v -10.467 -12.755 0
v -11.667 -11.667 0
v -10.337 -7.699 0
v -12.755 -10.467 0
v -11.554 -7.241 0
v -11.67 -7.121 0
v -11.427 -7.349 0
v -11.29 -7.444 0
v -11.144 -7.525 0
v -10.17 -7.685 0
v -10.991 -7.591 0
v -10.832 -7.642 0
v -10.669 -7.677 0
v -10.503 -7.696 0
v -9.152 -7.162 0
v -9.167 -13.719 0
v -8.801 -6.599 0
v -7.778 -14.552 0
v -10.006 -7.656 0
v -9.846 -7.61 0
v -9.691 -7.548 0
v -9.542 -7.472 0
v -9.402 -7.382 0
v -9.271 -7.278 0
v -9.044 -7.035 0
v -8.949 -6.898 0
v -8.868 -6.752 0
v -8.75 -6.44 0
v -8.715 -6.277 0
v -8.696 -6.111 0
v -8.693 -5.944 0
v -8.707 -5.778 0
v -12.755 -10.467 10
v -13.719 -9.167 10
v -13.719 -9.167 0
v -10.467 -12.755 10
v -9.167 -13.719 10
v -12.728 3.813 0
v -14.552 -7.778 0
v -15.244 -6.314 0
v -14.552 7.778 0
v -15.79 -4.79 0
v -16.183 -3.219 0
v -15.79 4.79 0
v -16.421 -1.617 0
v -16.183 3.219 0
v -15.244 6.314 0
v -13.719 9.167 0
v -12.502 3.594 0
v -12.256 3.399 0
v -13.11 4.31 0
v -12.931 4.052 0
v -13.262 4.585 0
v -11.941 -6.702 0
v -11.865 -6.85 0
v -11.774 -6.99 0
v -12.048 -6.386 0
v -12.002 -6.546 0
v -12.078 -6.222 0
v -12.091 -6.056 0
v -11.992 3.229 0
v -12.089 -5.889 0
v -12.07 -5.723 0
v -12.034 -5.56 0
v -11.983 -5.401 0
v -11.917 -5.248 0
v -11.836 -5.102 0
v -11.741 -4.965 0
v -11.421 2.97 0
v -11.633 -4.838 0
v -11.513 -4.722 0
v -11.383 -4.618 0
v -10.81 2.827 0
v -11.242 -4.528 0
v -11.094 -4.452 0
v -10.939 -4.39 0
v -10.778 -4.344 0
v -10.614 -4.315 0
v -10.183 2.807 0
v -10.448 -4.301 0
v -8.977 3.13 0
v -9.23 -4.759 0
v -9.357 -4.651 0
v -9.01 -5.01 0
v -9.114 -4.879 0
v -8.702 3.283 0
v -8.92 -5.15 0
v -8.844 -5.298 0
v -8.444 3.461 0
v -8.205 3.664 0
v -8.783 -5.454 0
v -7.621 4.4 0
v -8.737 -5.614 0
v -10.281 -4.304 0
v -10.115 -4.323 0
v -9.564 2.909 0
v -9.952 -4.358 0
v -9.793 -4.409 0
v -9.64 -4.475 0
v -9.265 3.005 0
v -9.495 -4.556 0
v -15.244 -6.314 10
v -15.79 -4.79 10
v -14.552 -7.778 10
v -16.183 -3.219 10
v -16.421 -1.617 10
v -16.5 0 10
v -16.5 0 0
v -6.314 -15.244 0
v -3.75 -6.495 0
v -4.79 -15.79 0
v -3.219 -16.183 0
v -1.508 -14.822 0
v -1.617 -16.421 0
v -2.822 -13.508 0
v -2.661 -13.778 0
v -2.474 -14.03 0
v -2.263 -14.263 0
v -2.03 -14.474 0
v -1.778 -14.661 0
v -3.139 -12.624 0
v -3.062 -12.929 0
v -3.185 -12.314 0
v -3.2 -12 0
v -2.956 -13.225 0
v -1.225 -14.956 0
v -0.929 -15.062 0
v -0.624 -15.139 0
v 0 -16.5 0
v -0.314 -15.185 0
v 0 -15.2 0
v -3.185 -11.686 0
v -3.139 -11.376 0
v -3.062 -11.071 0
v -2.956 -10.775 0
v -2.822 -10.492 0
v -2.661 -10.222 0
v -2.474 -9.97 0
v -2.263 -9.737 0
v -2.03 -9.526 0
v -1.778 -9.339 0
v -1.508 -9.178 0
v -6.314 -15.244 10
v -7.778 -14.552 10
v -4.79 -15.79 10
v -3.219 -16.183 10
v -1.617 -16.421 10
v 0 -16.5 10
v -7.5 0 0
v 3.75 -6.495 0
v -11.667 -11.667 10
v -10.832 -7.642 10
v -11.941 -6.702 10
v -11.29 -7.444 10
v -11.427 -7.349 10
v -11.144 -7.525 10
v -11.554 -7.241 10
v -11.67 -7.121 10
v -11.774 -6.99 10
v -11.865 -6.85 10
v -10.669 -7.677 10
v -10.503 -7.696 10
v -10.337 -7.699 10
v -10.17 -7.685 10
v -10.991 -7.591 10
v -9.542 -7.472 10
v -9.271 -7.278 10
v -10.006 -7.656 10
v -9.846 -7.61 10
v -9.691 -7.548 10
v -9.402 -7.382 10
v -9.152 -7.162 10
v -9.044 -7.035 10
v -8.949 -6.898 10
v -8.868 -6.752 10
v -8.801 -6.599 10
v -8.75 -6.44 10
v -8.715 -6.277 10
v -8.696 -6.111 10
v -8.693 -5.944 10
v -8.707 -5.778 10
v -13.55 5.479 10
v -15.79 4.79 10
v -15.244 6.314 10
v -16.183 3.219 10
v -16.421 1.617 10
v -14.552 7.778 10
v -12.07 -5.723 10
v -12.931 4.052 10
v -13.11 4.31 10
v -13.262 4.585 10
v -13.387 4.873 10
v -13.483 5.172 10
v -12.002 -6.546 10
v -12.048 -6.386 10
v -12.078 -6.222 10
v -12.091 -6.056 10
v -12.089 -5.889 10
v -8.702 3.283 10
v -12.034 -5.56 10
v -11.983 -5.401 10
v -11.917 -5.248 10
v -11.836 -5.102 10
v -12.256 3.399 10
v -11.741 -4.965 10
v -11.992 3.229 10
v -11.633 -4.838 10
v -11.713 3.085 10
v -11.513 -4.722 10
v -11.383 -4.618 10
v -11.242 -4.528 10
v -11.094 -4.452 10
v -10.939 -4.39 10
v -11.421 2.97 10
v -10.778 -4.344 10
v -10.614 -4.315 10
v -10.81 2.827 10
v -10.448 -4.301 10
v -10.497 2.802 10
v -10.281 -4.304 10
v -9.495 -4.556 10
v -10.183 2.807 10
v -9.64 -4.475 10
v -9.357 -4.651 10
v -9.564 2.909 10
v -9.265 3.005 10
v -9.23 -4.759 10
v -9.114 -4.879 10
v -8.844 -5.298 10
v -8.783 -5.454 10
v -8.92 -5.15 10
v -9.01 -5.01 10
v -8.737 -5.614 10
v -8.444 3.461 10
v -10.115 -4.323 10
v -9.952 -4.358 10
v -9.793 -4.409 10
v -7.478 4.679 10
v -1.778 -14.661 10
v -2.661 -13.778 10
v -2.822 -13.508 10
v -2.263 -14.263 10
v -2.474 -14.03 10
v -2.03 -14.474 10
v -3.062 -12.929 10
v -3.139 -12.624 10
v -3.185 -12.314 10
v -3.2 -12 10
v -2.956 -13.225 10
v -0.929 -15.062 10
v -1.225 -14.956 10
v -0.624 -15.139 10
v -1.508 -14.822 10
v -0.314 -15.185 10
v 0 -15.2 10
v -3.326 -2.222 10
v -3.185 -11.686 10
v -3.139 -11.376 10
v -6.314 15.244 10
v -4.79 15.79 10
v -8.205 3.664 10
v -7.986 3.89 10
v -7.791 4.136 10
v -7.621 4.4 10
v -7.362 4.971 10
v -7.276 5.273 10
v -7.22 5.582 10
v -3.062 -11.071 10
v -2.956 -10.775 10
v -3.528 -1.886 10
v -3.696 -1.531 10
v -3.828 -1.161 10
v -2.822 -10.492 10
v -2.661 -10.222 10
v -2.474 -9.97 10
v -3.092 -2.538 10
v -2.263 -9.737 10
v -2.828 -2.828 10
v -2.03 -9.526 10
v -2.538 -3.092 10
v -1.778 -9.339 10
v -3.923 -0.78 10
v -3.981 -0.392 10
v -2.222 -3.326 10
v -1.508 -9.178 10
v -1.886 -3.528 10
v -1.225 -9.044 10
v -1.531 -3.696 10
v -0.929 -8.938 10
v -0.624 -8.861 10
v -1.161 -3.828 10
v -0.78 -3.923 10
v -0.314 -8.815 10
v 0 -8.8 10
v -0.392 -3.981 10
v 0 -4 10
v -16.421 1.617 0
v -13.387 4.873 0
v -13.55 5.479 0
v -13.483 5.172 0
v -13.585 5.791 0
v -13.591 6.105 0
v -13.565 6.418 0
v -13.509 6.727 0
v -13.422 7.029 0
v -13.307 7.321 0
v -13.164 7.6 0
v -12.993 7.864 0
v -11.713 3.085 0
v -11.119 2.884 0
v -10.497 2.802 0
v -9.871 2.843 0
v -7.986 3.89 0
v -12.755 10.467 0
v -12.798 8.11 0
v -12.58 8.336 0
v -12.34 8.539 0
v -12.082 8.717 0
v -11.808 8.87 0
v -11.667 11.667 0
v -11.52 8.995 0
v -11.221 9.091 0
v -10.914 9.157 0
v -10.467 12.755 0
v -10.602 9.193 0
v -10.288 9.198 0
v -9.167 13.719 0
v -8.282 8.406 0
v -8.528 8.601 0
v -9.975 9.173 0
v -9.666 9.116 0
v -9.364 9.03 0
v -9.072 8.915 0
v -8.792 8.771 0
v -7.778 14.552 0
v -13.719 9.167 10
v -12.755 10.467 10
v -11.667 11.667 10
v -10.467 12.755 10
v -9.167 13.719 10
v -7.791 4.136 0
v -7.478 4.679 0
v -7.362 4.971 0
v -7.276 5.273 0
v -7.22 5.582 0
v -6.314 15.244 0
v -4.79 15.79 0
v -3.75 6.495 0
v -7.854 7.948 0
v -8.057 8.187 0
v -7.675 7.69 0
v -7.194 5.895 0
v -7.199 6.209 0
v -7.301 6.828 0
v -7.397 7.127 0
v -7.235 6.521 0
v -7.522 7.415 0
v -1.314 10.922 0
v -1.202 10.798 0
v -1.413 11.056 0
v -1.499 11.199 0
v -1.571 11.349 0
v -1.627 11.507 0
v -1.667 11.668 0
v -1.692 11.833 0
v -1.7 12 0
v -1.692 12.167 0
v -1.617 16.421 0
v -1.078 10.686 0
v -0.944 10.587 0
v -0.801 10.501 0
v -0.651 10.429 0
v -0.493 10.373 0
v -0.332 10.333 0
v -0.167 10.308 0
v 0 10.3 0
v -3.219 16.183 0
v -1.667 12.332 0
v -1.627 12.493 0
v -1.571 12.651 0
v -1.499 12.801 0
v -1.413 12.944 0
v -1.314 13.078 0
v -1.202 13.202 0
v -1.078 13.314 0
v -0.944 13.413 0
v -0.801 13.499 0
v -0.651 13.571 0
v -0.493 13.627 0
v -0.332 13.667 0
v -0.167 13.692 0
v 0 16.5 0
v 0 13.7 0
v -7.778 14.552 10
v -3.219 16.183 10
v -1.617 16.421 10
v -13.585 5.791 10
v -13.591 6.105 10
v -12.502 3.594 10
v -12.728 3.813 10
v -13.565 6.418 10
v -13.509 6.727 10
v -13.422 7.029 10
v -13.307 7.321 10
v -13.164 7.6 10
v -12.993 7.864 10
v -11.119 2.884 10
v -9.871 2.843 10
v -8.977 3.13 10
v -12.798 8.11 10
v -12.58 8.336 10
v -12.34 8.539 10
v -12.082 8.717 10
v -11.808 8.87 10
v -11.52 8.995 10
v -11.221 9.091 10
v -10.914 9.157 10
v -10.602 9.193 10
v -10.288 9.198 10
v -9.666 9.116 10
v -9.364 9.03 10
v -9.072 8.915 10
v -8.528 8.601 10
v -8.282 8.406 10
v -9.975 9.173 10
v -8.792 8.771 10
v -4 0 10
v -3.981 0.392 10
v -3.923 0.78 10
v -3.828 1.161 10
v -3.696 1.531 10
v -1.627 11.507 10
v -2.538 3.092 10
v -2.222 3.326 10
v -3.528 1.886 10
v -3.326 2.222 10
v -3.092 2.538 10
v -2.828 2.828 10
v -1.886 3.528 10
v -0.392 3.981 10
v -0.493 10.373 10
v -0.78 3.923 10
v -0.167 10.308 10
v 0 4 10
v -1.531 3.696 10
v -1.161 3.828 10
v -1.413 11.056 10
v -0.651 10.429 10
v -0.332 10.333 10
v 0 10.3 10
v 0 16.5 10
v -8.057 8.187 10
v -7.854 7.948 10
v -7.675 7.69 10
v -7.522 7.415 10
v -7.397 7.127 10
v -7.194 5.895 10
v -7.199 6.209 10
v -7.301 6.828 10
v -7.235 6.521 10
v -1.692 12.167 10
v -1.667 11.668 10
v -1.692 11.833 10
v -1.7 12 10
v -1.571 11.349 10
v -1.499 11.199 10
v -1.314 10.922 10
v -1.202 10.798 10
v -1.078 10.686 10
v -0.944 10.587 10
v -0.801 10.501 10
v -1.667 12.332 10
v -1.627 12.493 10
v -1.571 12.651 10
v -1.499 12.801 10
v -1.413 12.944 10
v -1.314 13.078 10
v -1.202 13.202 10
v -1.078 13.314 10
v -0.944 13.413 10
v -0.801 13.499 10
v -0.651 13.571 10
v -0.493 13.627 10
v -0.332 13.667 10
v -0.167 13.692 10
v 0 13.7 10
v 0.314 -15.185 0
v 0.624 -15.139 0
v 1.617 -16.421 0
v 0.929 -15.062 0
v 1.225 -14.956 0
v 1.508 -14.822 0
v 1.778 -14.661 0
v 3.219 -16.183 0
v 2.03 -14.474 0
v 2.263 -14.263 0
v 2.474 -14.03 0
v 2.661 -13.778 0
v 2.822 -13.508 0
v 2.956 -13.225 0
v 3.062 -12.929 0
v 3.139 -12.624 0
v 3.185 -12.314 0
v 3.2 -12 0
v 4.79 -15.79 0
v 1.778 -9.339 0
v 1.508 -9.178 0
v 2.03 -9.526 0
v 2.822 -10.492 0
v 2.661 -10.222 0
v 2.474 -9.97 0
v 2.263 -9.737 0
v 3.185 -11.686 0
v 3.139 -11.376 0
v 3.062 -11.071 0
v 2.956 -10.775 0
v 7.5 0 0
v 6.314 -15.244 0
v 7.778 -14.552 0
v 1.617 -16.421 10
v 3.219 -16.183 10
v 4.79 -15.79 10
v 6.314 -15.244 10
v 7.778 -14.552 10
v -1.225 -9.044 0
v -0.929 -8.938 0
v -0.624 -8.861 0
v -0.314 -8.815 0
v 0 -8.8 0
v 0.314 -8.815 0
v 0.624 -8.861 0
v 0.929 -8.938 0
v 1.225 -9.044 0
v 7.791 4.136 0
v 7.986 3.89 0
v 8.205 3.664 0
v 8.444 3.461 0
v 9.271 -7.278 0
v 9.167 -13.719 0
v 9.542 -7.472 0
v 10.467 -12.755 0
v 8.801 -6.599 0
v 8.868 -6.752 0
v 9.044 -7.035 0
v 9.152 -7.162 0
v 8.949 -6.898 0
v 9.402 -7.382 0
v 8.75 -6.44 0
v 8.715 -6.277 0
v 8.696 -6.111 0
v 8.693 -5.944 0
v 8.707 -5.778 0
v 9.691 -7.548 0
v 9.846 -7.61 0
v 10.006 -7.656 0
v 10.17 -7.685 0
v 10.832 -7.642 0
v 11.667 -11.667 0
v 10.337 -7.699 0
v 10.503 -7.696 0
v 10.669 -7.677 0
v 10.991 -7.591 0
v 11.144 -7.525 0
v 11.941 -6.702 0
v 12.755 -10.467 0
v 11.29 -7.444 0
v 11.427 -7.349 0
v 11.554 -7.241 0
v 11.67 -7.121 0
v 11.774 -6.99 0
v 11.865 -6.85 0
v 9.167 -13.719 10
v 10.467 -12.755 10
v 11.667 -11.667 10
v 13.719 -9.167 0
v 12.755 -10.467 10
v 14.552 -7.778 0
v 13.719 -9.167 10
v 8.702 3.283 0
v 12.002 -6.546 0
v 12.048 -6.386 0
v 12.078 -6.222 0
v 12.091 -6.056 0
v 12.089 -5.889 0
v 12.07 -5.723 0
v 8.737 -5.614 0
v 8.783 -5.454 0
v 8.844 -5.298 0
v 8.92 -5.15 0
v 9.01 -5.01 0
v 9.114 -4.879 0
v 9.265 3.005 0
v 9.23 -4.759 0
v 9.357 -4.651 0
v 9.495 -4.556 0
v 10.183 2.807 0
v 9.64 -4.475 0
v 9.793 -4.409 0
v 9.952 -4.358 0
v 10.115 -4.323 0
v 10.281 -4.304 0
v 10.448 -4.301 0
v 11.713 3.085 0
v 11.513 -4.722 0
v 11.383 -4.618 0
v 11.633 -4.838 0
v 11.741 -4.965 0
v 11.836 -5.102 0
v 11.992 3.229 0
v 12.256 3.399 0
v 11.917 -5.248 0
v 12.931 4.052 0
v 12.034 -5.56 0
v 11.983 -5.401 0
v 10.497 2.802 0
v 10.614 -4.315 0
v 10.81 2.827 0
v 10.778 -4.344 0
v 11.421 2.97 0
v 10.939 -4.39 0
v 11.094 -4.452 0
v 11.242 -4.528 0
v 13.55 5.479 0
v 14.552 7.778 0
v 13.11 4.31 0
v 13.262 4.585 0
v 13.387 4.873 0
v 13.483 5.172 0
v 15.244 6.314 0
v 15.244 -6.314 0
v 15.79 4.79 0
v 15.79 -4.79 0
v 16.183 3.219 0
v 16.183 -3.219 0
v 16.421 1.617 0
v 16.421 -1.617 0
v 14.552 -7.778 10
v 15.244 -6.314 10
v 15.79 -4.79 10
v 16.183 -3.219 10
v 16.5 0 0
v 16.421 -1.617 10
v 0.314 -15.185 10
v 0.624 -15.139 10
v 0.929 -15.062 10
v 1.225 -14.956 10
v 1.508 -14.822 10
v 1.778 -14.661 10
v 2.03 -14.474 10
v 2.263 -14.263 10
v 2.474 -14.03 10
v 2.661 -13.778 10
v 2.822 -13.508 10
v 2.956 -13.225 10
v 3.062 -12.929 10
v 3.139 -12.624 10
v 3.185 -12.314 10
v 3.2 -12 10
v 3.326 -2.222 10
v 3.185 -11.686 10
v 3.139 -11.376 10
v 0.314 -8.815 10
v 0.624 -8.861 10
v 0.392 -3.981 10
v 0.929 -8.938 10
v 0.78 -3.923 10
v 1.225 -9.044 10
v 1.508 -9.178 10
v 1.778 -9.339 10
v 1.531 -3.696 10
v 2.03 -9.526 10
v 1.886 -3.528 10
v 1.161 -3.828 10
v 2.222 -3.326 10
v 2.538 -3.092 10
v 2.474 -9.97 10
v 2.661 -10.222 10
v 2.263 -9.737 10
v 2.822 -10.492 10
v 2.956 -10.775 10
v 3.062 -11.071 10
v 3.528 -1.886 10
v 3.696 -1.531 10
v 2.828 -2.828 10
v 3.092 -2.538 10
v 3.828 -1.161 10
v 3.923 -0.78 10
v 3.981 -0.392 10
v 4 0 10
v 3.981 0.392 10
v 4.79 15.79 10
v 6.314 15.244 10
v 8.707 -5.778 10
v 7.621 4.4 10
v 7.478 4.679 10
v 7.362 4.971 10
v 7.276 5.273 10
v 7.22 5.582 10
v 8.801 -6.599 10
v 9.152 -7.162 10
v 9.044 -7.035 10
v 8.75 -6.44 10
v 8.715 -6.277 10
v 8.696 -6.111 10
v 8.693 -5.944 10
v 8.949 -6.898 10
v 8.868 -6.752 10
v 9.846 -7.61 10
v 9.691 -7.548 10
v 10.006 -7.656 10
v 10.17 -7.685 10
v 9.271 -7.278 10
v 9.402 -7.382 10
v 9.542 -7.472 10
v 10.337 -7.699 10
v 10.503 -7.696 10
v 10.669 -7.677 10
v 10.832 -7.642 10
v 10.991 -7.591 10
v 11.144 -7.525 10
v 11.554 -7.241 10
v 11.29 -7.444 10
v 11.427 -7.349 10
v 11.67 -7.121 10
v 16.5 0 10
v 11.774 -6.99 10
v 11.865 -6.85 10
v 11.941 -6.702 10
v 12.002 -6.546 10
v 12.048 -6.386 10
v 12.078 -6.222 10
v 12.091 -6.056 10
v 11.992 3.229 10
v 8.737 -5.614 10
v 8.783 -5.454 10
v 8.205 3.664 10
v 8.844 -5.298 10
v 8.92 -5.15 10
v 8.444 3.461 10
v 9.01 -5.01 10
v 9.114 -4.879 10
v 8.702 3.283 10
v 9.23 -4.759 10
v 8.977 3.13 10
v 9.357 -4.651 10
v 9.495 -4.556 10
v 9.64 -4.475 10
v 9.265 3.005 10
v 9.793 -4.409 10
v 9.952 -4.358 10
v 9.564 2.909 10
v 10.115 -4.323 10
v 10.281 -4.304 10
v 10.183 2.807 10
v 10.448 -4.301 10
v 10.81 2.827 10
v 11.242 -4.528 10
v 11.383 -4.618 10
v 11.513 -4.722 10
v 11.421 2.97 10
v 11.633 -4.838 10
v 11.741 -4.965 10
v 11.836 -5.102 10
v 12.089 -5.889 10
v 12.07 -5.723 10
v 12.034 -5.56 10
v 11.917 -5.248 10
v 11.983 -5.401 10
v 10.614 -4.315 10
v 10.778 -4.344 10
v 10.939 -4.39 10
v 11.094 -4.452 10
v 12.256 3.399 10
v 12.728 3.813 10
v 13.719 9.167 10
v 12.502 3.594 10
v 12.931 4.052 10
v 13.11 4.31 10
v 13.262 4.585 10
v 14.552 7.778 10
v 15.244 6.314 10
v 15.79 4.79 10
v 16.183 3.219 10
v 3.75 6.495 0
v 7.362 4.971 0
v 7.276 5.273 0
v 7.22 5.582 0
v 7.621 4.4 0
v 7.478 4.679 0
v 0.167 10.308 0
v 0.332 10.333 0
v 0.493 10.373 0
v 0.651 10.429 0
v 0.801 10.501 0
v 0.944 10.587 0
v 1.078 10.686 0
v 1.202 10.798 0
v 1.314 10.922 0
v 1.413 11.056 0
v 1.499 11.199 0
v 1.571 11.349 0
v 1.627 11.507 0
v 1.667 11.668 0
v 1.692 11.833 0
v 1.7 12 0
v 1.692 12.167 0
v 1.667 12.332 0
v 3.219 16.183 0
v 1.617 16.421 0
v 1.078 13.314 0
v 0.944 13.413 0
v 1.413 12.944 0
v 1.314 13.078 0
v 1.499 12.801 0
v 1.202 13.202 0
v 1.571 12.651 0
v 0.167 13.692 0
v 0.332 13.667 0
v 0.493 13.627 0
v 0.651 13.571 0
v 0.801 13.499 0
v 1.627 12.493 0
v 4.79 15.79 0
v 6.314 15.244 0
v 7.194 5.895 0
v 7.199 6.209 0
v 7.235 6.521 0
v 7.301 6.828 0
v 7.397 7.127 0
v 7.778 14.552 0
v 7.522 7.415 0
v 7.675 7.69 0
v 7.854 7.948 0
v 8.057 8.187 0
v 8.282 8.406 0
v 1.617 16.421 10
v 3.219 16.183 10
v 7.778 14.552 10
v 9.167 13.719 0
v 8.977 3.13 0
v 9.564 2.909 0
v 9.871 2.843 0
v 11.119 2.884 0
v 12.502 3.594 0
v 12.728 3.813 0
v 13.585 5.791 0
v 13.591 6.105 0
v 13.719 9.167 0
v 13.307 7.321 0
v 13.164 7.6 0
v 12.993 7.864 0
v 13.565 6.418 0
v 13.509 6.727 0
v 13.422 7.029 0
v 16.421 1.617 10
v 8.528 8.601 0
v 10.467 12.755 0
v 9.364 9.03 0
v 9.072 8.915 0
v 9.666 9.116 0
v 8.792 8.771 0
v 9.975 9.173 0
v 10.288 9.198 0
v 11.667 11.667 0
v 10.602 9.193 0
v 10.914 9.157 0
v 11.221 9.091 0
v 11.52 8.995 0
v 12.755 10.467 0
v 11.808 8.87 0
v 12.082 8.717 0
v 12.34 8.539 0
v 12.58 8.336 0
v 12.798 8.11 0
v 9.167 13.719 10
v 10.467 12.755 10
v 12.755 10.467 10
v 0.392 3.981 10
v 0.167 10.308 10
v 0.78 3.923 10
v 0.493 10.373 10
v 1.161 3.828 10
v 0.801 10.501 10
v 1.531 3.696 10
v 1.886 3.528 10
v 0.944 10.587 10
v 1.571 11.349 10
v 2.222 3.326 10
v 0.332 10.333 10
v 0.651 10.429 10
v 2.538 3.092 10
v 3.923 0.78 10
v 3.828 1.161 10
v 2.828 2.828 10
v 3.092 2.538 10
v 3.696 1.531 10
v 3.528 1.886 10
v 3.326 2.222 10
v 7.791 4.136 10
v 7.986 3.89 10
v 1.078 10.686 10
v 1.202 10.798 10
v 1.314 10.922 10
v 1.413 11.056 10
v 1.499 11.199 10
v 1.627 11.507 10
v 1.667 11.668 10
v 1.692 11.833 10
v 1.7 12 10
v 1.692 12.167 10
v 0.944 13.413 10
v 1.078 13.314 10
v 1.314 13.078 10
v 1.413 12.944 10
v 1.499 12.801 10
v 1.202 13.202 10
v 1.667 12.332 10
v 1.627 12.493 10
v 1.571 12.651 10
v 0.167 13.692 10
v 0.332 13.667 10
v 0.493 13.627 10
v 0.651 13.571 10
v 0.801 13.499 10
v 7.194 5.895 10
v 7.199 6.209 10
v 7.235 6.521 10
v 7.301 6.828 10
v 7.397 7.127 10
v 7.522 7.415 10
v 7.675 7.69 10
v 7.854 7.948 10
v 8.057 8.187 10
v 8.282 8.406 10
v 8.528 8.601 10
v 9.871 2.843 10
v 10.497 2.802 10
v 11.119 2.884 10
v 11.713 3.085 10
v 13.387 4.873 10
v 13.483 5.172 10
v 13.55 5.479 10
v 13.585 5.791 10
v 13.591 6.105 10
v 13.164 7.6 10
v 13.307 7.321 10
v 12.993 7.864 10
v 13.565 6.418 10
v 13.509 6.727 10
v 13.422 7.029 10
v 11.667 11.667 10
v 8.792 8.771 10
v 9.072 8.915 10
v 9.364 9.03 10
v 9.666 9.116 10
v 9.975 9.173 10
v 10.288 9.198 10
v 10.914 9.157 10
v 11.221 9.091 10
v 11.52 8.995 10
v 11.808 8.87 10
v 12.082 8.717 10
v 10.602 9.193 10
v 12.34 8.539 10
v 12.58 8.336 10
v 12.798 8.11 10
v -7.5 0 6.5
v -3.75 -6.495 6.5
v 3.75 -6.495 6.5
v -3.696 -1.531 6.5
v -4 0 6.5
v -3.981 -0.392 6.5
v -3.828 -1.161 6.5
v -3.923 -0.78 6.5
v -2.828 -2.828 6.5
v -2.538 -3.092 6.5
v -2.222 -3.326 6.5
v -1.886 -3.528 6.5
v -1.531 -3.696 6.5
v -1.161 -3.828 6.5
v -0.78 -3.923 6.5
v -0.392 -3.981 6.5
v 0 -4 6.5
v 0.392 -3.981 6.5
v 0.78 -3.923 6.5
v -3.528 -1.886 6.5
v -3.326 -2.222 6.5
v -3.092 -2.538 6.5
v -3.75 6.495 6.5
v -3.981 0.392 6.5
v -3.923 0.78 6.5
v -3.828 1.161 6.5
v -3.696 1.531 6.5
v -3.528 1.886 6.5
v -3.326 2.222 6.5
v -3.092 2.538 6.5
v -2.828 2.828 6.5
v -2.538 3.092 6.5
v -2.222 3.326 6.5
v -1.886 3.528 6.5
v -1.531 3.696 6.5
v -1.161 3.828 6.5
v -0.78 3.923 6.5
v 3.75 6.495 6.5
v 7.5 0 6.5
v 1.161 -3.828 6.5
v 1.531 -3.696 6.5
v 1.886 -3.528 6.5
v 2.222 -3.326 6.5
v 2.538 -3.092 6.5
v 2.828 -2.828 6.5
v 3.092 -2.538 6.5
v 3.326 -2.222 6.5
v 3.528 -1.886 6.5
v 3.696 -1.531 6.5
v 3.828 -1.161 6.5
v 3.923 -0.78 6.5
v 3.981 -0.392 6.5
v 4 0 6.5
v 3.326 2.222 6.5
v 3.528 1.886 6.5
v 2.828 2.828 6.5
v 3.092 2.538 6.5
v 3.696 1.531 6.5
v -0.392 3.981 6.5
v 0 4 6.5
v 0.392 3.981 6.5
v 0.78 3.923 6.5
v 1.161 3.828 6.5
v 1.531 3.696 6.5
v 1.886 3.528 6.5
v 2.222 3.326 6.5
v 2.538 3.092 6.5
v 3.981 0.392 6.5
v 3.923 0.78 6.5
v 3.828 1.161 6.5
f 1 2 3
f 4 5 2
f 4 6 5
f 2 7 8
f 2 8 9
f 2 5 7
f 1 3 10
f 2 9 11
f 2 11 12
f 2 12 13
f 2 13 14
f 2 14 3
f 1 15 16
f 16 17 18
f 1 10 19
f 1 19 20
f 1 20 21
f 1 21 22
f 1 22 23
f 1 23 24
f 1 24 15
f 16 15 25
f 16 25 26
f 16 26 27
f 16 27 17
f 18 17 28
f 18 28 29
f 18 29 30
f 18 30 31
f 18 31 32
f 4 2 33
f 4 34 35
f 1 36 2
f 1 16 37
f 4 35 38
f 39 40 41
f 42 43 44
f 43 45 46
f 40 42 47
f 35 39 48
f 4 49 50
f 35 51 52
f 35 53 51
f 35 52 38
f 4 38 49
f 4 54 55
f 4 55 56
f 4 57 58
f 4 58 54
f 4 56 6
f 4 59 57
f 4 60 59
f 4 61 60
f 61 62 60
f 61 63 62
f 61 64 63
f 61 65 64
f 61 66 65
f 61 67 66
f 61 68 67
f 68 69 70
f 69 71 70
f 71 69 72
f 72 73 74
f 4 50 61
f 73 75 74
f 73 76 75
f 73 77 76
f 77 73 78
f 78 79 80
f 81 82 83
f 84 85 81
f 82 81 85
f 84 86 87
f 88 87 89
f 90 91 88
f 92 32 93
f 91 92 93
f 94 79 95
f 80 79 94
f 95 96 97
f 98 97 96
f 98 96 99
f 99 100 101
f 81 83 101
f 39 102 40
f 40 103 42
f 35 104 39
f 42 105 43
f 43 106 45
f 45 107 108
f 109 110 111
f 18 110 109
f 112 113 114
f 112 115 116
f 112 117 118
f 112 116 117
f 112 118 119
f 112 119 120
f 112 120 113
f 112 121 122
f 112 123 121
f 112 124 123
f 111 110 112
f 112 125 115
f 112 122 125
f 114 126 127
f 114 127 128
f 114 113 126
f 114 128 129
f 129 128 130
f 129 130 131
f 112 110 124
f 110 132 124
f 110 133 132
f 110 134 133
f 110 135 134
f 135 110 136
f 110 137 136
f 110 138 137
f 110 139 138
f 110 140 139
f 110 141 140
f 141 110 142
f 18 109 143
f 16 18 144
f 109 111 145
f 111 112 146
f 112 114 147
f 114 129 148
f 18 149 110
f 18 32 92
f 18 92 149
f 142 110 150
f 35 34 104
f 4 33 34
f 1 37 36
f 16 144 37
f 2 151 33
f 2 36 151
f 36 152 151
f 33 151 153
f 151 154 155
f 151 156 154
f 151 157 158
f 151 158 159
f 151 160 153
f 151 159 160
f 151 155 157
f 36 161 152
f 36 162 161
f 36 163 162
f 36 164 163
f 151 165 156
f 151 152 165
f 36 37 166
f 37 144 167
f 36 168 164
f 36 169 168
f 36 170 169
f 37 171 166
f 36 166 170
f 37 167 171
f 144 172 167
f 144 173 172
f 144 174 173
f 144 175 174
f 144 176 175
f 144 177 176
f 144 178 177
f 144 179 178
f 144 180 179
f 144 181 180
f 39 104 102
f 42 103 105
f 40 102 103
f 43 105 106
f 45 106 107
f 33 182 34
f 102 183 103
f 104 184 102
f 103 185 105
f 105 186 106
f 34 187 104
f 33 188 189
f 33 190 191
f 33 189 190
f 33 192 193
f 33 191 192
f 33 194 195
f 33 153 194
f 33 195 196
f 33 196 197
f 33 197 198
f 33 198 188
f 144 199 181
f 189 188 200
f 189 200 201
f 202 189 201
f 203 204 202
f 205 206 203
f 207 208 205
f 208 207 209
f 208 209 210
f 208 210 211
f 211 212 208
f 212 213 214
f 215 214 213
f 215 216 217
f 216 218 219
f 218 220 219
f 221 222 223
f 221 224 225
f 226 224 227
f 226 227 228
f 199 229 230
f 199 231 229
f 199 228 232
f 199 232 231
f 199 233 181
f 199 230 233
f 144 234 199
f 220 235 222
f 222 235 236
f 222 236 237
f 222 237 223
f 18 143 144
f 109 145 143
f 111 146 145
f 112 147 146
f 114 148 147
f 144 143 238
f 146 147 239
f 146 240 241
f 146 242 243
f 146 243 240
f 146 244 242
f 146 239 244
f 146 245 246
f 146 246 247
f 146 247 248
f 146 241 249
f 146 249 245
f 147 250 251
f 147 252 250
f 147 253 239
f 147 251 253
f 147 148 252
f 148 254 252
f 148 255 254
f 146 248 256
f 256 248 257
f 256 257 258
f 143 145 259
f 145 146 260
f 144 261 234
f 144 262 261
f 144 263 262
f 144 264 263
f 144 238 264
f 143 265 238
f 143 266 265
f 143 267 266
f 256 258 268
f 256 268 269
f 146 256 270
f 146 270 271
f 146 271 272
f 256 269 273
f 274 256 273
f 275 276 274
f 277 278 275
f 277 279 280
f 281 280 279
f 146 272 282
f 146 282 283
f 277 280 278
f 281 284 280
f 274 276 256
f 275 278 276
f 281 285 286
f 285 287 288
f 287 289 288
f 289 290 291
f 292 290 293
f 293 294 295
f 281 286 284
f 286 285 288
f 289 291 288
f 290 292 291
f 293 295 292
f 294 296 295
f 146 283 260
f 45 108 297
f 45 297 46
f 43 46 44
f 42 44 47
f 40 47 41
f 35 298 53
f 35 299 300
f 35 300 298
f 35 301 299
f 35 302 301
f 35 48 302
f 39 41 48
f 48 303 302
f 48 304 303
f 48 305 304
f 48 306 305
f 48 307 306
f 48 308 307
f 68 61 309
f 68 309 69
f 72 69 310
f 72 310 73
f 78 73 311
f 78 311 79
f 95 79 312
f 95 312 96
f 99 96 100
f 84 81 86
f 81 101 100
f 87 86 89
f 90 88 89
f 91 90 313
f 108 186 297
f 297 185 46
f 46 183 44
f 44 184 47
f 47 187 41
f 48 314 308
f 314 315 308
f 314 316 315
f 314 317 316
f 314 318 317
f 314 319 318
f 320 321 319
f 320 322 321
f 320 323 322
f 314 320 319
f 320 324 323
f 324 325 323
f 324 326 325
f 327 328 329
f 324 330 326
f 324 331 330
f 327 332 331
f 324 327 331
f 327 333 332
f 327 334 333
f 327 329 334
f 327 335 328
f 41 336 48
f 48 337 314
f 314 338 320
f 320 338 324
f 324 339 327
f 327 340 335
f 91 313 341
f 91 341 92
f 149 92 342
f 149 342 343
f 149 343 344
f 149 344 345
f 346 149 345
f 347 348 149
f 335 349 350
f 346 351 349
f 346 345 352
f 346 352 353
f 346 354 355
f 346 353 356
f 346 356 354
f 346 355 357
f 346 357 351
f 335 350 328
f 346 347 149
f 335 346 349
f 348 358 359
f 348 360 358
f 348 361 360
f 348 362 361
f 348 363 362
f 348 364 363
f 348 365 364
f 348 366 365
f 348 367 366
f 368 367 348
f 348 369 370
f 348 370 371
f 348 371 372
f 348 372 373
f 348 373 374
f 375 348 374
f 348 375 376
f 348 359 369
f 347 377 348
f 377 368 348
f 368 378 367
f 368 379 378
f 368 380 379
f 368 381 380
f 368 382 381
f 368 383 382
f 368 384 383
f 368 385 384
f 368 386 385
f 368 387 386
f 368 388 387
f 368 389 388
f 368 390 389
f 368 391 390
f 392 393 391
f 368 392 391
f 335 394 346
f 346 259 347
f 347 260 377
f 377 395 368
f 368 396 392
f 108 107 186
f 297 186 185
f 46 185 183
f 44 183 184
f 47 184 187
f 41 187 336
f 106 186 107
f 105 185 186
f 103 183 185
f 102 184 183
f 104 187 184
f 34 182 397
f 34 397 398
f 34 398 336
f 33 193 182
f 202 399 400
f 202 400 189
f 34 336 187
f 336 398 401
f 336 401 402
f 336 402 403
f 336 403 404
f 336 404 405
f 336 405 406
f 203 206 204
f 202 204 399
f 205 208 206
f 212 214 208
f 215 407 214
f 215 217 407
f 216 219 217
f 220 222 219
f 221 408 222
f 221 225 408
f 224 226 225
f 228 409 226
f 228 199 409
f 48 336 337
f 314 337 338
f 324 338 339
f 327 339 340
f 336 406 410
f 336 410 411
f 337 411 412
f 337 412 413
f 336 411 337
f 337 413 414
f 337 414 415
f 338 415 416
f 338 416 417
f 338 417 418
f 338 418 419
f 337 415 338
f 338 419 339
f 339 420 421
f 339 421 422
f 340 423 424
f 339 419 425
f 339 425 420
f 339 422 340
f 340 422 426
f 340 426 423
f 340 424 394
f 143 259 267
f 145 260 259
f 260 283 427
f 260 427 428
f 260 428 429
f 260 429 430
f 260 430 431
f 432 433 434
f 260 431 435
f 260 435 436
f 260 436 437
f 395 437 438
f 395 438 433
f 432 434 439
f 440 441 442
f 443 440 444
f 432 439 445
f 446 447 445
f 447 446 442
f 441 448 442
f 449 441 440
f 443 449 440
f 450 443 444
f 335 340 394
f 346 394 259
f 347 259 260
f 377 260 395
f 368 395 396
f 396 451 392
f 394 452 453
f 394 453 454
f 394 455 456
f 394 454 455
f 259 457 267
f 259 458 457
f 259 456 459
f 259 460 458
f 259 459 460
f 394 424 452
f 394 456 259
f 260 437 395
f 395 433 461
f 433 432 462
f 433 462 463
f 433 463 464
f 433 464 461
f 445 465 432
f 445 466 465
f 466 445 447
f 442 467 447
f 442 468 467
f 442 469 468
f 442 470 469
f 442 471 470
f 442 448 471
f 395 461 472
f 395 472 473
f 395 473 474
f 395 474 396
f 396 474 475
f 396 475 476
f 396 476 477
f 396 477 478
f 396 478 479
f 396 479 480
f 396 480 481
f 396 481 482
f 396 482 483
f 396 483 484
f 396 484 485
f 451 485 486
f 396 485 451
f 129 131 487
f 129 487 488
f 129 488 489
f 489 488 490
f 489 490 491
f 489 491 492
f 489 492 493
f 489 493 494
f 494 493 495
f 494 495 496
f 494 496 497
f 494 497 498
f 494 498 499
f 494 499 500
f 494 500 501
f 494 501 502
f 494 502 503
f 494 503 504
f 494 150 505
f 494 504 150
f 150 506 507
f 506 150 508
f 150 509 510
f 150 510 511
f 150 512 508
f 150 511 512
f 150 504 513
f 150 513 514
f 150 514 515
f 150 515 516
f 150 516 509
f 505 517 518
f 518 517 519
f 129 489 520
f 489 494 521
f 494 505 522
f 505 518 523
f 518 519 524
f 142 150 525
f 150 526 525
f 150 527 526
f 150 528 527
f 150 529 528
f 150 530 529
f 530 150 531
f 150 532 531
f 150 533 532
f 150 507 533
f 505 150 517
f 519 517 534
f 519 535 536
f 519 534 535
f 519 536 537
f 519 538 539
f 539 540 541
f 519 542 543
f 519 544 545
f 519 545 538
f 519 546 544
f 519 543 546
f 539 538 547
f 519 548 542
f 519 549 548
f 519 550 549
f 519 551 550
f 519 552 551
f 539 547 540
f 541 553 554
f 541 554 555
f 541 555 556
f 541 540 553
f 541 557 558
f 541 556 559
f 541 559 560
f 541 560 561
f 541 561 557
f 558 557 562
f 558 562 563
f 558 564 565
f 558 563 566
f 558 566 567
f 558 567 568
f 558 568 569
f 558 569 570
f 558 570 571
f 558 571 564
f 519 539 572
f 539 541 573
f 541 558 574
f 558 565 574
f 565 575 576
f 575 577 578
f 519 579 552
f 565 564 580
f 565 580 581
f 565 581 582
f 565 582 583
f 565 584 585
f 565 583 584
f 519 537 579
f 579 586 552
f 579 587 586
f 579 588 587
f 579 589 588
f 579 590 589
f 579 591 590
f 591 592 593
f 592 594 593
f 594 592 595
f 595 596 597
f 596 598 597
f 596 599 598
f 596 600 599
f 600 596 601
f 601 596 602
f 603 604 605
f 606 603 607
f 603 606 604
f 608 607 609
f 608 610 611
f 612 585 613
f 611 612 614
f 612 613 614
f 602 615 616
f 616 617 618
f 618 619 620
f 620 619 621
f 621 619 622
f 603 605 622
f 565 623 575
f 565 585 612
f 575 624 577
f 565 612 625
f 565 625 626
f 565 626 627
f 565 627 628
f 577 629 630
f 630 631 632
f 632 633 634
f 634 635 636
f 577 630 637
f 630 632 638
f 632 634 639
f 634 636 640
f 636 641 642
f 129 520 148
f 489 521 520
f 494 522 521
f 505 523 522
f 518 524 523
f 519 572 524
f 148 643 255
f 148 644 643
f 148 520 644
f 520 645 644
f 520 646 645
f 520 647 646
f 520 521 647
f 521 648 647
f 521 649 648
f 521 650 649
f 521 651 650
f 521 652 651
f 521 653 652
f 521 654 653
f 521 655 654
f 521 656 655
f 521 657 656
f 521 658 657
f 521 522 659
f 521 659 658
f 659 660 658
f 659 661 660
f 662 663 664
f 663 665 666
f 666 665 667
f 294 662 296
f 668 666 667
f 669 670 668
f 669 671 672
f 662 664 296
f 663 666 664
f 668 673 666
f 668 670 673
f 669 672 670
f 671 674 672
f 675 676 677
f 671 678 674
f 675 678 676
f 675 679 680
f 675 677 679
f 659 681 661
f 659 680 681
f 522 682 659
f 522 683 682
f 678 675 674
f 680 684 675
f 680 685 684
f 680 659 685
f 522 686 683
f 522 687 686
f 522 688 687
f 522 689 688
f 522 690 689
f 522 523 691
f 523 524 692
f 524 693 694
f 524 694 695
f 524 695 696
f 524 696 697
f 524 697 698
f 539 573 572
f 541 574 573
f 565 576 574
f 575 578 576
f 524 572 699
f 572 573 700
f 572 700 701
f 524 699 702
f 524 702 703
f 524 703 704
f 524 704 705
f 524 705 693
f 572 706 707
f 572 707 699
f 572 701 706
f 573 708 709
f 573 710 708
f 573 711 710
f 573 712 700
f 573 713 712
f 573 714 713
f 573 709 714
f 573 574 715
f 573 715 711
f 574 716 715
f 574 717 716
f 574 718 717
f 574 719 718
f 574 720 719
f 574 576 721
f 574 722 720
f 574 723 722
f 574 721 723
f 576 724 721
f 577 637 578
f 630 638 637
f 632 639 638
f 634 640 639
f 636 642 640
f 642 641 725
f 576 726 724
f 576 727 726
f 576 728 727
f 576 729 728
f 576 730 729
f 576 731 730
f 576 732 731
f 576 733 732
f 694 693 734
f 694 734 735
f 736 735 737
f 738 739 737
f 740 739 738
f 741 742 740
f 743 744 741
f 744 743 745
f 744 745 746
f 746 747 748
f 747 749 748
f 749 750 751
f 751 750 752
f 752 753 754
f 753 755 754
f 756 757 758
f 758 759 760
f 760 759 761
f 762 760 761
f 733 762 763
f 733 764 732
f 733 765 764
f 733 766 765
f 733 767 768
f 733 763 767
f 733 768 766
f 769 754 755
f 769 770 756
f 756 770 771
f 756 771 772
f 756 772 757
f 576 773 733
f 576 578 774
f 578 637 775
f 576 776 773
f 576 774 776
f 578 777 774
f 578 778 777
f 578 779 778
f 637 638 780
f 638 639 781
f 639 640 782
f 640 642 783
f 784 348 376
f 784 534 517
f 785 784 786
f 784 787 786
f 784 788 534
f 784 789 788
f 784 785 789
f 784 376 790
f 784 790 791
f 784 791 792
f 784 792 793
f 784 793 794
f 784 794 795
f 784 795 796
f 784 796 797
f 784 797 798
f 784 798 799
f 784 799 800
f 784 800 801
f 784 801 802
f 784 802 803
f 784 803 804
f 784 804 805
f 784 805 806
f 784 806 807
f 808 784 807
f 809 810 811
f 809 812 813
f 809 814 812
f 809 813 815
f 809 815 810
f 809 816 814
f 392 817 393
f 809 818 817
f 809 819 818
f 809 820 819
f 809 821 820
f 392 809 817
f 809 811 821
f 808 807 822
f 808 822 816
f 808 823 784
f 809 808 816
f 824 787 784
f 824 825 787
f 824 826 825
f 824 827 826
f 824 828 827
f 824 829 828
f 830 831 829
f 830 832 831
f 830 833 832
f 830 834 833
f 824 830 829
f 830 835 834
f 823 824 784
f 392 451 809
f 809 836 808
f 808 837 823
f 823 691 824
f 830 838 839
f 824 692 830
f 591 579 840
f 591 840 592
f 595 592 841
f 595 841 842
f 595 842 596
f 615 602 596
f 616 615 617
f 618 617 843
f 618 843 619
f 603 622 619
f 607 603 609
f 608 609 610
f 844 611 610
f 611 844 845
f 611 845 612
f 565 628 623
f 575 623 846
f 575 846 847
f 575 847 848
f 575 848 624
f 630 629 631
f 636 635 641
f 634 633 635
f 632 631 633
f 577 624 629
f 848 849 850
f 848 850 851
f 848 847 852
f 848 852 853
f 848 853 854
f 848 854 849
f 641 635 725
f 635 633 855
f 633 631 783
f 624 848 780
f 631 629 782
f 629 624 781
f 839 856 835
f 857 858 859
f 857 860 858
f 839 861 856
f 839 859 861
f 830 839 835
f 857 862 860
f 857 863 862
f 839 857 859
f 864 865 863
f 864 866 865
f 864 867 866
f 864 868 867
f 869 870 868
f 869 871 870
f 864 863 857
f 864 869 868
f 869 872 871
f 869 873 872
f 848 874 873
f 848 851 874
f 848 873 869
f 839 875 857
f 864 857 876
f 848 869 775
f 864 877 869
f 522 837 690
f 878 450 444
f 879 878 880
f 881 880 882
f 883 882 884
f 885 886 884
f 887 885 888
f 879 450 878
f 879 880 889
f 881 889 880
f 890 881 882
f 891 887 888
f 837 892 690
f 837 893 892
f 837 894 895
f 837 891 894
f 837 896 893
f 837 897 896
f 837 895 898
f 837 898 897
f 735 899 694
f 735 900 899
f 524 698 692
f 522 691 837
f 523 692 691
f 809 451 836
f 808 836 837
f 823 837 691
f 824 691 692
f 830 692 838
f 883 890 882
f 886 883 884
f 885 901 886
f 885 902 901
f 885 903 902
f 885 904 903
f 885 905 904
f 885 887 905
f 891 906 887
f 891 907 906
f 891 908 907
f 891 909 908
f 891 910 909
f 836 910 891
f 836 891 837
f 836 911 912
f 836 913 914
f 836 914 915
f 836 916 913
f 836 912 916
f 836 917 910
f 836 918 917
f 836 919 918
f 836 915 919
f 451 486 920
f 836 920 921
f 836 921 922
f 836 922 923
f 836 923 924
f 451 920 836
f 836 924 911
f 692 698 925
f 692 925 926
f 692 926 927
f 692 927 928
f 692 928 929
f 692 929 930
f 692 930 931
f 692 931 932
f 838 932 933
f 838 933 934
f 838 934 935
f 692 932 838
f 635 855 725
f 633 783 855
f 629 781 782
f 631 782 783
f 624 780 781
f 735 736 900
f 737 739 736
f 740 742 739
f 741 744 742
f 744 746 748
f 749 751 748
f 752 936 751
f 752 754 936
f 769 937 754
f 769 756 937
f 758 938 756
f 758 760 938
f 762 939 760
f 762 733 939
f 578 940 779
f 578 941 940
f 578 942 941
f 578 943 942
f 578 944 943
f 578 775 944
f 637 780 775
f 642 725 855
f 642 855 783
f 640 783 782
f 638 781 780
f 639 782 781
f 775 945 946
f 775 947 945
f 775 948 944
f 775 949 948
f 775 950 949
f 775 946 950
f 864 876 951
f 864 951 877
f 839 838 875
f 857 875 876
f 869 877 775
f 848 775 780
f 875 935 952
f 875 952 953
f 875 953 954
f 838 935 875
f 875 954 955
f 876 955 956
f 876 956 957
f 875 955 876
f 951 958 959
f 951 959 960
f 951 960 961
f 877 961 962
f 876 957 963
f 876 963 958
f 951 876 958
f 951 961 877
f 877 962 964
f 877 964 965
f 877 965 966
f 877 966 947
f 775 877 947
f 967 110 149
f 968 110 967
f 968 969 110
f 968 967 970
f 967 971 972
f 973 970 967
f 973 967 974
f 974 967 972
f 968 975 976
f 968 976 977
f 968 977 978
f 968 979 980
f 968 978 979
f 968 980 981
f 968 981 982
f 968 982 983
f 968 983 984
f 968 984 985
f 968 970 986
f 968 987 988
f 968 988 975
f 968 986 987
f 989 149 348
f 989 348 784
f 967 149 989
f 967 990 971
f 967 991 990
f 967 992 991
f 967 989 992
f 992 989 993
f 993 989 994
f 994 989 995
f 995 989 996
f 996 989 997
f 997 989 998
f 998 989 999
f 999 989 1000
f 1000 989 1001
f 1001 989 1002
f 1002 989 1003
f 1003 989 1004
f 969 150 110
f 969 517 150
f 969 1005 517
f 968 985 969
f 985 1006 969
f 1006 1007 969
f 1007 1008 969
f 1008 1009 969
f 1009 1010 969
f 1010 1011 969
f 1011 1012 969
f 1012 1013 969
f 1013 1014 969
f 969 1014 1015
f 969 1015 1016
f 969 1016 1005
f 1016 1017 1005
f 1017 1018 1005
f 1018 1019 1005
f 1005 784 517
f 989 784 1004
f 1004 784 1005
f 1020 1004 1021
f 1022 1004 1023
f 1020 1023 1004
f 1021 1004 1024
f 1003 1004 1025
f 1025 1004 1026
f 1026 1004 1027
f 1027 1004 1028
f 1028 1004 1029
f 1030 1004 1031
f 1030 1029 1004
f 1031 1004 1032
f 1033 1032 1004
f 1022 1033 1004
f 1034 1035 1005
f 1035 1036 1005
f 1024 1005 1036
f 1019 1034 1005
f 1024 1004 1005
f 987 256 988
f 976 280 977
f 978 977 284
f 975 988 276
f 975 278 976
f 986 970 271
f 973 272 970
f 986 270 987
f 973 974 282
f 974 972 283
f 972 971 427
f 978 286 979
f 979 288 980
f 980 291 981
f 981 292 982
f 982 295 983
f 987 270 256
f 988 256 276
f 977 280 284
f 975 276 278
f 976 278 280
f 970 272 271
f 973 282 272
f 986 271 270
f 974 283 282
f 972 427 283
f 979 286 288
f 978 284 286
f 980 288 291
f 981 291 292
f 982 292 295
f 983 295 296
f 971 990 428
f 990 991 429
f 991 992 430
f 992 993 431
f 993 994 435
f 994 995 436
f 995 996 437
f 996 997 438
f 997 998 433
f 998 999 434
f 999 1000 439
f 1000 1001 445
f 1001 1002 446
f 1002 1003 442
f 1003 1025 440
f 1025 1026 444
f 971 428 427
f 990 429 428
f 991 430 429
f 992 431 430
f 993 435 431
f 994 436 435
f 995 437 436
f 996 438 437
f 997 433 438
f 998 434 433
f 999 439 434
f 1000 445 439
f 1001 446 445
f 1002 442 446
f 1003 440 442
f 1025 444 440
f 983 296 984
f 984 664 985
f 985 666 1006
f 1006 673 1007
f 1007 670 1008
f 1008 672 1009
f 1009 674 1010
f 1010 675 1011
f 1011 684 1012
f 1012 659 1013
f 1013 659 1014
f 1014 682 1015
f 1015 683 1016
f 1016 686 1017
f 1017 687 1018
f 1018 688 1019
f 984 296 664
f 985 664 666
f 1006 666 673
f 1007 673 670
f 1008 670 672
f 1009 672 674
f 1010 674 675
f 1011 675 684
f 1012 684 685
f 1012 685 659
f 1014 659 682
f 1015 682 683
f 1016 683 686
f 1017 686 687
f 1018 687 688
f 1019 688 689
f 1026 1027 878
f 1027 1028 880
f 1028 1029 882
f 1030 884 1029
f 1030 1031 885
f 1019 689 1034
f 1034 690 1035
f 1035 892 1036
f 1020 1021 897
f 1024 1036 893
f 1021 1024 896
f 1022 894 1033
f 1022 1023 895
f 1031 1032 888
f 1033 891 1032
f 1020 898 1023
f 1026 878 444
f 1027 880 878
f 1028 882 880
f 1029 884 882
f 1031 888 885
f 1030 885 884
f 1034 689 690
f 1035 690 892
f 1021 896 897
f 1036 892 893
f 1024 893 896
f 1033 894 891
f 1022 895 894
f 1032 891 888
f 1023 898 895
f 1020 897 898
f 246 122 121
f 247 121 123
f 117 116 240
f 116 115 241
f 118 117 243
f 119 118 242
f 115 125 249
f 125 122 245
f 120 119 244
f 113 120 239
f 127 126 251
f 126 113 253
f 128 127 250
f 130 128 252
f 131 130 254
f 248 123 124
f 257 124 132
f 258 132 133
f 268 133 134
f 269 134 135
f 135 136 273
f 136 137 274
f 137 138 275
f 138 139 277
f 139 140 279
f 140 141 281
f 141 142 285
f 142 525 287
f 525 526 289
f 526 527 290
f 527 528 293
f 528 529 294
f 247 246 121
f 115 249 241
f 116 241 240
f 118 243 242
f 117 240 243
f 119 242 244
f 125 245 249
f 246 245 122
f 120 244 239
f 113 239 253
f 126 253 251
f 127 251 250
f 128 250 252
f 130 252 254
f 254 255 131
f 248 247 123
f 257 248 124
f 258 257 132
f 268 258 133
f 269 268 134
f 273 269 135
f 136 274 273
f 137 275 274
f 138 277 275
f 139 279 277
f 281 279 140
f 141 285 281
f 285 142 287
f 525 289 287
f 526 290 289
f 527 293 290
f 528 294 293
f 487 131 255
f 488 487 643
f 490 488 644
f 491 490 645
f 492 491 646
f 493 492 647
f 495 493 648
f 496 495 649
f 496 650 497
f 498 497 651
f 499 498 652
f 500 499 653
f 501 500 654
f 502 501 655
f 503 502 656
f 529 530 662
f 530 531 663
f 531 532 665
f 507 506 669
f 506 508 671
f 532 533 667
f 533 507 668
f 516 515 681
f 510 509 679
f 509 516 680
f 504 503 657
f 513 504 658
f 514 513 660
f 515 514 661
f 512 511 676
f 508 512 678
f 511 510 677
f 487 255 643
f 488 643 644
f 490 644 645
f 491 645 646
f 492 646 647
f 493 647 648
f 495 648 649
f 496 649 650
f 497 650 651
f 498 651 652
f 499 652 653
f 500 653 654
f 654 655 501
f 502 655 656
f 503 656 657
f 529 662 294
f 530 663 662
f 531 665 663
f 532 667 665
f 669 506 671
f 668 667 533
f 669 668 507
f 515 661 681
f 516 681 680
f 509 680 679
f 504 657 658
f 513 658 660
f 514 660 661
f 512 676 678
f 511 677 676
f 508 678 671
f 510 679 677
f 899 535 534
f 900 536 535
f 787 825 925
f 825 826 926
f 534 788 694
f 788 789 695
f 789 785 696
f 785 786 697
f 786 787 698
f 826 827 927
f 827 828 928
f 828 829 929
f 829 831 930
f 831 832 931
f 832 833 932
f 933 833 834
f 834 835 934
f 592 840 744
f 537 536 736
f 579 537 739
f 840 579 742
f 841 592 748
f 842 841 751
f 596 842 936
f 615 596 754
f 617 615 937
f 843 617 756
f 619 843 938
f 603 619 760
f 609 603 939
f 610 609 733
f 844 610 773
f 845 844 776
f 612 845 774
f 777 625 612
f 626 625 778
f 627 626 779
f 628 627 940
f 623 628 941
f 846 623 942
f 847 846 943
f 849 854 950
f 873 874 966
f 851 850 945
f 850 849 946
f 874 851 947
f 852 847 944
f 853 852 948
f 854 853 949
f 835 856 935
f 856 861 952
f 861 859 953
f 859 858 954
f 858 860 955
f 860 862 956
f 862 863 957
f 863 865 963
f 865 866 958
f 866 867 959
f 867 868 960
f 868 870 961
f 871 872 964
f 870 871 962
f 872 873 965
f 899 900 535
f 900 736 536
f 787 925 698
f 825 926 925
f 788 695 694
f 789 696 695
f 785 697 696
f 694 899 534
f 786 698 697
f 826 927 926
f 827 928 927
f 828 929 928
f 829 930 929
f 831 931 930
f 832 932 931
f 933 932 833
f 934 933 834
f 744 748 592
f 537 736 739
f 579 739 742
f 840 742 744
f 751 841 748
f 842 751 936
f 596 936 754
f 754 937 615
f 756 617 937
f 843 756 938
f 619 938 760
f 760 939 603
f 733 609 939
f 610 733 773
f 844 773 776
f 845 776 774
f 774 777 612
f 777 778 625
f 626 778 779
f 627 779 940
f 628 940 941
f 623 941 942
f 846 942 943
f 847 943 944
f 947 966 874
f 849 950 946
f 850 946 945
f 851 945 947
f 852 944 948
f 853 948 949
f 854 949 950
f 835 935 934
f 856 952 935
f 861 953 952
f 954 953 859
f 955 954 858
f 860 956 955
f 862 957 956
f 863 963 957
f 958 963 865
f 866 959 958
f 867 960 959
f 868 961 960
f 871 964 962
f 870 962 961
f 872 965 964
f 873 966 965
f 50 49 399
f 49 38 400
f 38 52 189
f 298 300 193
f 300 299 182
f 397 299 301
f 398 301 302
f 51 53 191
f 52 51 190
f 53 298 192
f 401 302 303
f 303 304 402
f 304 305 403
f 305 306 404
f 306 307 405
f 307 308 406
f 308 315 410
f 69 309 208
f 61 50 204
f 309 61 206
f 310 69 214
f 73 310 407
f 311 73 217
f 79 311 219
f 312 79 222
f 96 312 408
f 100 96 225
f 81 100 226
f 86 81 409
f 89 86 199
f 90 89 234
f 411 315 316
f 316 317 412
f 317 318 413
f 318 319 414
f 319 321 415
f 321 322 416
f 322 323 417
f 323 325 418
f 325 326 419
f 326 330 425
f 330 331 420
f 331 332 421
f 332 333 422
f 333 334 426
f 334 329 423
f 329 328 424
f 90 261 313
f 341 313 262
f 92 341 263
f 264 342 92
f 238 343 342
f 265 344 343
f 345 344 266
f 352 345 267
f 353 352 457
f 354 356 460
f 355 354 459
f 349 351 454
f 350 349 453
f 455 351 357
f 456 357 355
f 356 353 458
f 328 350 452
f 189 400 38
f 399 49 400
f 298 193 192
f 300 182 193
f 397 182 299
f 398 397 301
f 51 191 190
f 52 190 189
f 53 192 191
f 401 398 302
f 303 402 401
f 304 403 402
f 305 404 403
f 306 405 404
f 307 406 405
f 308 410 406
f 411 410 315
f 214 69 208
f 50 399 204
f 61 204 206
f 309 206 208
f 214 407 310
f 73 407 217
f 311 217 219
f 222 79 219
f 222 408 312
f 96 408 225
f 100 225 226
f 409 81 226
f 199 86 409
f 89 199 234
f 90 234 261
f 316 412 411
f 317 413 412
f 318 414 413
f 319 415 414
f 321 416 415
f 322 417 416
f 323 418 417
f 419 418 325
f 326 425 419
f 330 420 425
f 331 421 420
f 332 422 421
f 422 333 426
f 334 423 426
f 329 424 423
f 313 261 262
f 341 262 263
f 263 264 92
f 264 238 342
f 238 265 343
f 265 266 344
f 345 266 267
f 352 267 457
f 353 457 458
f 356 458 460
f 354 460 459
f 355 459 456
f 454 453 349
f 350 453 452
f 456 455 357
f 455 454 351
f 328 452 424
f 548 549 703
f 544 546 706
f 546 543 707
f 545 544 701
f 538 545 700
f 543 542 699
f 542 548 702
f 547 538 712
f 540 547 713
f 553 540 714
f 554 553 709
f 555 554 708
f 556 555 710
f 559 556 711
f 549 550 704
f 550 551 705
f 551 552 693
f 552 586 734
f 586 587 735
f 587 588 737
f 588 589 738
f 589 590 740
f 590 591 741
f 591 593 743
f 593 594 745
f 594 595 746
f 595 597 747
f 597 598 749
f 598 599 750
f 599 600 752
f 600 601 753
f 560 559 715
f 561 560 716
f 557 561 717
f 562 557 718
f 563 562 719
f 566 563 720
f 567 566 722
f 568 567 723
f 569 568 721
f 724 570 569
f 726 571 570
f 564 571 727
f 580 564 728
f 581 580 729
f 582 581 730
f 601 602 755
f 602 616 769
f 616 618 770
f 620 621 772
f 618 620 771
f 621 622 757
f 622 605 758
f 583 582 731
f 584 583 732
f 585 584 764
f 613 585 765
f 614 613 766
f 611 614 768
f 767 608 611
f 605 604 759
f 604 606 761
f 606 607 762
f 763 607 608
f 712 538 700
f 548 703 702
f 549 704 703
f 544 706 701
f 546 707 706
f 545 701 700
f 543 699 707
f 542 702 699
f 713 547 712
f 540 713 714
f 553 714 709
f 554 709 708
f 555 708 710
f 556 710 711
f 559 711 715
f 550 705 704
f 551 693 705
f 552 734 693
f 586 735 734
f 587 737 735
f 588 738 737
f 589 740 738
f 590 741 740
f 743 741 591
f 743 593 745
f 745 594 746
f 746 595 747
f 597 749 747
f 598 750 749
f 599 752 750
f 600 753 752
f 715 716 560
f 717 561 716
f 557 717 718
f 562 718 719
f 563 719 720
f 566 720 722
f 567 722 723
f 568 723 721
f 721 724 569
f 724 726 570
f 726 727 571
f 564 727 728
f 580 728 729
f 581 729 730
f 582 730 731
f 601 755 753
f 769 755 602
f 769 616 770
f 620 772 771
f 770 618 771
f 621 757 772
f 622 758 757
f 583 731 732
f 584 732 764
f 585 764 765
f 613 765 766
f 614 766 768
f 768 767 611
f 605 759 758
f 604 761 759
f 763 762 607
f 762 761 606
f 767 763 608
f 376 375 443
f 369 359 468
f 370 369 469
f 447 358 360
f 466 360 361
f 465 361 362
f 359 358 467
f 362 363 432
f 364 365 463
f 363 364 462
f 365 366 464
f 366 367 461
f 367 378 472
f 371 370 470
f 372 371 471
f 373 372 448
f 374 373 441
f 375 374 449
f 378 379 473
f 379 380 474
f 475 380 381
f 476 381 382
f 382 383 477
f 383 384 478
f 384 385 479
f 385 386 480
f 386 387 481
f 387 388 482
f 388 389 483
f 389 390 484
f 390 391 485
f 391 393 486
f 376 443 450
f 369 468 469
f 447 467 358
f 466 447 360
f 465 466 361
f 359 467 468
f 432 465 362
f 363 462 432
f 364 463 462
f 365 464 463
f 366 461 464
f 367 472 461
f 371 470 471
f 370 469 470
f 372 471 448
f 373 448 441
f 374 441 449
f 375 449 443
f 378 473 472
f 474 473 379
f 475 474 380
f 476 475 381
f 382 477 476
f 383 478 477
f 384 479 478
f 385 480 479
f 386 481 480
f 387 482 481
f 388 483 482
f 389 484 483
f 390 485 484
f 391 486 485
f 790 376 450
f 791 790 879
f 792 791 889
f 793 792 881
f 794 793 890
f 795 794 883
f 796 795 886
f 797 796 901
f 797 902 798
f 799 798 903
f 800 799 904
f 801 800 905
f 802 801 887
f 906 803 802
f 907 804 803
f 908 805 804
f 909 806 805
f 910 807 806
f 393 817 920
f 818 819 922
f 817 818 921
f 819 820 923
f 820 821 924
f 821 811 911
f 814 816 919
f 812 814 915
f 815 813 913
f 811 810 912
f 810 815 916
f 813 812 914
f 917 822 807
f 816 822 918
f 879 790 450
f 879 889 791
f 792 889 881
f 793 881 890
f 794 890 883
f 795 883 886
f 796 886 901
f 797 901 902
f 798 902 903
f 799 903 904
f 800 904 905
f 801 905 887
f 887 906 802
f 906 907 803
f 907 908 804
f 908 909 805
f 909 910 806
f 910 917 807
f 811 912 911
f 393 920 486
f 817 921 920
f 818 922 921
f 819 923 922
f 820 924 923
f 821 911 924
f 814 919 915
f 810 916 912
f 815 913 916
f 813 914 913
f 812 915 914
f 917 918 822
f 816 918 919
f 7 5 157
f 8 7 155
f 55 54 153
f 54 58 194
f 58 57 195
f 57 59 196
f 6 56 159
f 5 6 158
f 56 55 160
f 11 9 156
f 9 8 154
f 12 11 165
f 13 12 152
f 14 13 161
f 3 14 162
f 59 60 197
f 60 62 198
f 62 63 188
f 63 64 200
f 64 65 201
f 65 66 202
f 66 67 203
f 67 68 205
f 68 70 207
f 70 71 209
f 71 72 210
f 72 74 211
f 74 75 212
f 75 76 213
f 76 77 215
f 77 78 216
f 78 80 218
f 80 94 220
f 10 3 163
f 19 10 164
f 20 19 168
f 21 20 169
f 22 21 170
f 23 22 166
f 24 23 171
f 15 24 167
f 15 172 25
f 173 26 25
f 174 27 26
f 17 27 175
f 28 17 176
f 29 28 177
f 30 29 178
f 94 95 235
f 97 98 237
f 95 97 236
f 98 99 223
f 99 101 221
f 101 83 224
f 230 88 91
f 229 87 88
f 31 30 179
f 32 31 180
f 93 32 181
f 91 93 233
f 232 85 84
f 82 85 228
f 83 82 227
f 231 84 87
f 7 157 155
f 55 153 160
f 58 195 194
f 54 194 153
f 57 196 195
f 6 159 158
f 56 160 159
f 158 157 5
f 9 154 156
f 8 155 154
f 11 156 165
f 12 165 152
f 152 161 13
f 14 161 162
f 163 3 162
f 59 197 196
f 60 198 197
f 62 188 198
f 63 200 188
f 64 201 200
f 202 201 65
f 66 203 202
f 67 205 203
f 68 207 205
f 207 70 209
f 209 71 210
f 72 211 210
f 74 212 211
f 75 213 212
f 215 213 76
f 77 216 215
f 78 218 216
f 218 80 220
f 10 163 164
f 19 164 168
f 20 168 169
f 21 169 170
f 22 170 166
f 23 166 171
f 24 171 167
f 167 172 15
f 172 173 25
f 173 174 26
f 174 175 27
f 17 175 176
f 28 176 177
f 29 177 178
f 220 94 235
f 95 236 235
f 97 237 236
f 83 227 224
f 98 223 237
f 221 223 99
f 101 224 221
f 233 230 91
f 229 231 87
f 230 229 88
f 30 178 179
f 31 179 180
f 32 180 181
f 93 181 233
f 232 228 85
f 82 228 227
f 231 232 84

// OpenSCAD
$fn=64;

difference() {
    color("green") cylinder(h=10, d=33);

    color("red") cylinder(h=6.5, d=15, $fn = 6);  
   
    cylinder(h=20, d=8);
    
    rotate([0,0,0])
        translate([0,-12,0])
            cylinder(h=20, d=6.4);
    rotate([0,0,120])
        translate([0,-12,0])
            cylinder(h=20, d=6.4);
    rotate([0,0,240])
        translate([0,-12,0])
            cylinder(h=20, d=6.4);
            
    rotate([0,0,60])
        translate([0,-12,0])
            cylinder(h=20, d=3.4);
    rotate([0,0,180])
        translate([0,-12,0])
            cylinder(h=20, d=3.4);
    rotate([0,0,300])
        translate([0,-12,0])
            cylinder(h=20, d=3.4);

}
/*
translate([-24.8,18.26,0])
        import("plate.stl");
*/
